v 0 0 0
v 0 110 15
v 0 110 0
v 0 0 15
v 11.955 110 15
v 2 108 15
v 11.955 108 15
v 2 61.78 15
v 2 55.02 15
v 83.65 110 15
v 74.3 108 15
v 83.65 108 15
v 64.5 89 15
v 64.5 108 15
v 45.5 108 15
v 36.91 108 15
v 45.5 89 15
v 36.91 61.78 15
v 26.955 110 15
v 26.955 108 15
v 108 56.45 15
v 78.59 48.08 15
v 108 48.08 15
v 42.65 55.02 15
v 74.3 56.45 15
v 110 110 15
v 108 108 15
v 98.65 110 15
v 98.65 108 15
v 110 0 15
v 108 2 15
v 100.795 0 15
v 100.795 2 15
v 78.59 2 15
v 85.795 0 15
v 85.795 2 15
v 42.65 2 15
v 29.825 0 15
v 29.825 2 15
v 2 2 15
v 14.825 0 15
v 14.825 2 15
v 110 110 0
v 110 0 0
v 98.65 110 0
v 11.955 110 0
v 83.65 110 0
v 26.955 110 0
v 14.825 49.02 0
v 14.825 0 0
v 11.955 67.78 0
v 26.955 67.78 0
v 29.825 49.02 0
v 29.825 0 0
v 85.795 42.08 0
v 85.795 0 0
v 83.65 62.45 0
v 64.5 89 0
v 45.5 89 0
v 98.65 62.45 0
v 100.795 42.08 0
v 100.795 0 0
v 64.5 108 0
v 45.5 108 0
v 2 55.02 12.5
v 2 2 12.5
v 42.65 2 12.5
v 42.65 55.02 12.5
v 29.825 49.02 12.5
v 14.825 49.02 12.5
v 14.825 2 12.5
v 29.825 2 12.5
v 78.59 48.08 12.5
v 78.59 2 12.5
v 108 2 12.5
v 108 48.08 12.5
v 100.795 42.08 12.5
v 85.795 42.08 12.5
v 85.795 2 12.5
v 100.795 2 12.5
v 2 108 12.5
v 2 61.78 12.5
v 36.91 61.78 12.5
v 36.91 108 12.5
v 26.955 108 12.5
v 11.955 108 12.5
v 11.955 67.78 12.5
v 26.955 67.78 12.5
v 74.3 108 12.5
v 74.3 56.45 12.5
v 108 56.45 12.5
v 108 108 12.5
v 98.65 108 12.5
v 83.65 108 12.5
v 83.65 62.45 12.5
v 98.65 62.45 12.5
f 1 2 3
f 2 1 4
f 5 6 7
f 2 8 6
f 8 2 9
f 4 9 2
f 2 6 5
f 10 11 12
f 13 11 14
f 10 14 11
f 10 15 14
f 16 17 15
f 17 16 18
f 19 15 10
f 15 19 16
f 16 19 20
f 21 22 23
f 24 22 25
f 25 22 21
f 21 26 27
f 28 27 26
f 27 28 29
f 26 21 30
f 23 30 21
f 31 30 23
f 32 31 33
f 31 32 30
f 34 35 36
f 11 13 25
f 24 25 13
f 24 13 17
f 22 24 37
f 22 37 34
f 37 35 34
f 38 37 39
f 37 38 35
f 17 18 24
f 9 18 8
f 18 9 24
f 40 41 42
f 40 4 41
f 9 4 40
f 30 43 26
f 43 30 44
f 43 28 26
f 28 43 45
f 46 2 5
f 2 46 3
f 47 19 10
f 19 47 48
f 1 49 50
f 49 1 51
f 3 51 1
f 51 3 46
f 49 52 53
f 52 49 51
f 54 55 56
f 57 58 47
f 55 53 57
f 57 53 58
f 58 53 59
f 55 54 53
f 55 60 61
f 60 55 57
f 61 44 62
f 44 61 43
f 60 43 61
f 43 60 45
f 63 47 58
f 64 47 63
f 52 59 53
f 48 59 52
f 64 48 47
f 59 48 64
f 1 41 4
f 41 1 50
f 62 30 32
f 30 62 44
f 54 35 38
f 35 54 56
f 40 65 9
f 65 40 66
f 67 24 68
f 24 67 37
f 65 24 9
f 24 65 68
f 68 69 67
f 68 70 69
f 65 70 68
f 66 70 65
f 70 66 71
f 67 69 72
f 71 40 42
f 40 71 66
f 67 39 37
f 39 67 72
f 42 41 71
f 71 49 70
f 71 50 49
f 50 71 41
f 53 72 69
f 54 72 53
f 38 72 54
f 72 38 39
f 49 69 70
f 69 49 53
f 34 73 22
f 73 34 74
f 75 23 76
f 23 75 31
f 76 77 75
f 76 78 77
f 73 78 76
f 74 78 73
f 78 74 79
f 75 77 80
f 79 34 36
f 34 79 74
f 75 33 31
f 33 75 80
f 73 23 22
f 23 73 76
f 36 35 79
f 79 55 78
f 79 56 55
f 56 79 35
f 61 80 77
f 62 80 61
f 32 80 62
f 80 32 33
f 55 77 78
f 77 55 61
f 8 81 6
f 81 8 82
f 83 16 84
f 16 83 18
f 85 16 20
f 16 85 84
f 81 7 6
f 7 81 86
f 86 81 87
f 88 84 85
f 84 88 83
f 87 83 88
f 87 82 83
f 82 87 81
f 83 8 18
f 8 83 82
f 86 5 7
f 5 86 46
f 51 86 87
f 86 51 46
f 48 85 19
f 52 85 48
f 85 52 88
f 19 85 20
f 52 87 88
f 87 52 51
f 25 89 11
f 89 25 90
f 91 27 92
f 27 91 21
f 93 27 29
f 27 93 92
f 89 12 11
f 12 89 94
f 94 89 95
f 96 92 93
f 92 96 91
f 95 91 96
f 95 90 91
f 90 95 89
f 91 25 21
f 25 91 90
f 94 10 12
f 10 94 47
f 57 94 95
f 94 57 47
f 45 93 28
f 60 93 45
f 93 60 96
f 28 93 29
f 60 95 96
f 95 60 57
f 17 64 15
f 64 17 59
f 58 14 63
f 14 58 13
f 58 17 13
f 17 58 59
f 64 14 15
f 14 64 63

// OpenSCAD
length = 110;
width = 110;
height = 15;

//Based on magnet size:
magnetBaseInnerDiameter = 19;
magnetHeight = 4.0;

//        winged horror 52.02 x 39.65
//		bandit commander 45.08 x 28.41
//		the betrayer 45.22 x 33.91
//		The colorless 50.55 x 32.70

token1Width = 52.02 + 1;
token1Length = 39.65 + 1;
token1Height = 2 + .5;
token1SquareLipWidthRemainder = token1Length - 15;
token1SquareLipLengthRemainder = 4;

token3Width = 45.08 + 1;
token3Length = 28.41 + 1;
token3Height = 2 + .5;
token3SquareLipWidthRemainder = token3Length - 15;
token3SquareLipLengthRemainder = 4;

token4Width = 45.22 + 1;
token4Length = 33.91 + 1;
token4Height = 2 + .5;
token4SquareLipWidthRemainder = token4Length - 15;
token4SquareLipLengthRemainder = 4;

token6Width = 50.55 + 1;
token6Length = 32.70 + 1;
token6Height = 2 + .5;
token6SquareLipWidthRemainder = token6Length - 15;
token6SquareLipLengthRemainder = 4;

spaceBetweenCircles = 2;
wallThickness = spaceBetweenCircles;



difference(){
    cube([length, width, height]);


//----------------------------------
translate(
        [
            wallThickness,
            wallThickness,
            height - token1Height
        ])
        cube([token1Length,token1Width, token1Height]);
    translate([
        wallThickness + token1SquareLipWidthRemainder/2,
        0,
        0])
        cube([
            token1Length - token1SquareLipWidthRemainder,
            token1Width - token1SquareLipLengthRemainder,
            height]);

            
translate(
        [
            length - (wallThickness + token3Length),
            wallThickness,
            height - token3Height
        ])
        cube([token3Length,token3Width, token3Height]);
    translate([
        length - (wallThickness + token3Length) + token3SquareLipWidthRemainder/2,
        0,
        0])
        cube([
            token3Length - token3SquareLipWidthRemainder,
            token3Width - token3SquareLipLengthRemainder,
            height]);

            
//---------------------------------------------------------------------
    
    translate(
        [
            wallThickness,
            width - (wallThickness + token4Width),
            height - token4Height
        ])
        cube([token4Length,token4Width, token4Height]);
    translate([
        wallThickness + token4SquareLipWidthRemainder/2,
        width - (token4Width - token4SquareLipLengthRemainder),
        0])
        cube([
            token4Length - token4SquareLipWidthRemainder,
            token4Width - token4SquareLipLengthRemainder,
            height]);
            
    

    translate(
        [
            length - (wallThickness + token6Length),
            width - (wallThickness + token6Width),
            height - token6Height
        ])
        cube([token6Length,token6Width, token6Height]);
    translate([
        length - (wallThickness + token6Length) + token6SquareLipWidthRemainder/2,
        width - (token6Width - token6SquareLipLengthRemainder),
        0])
        cube([
            token6Length - token6SquareLipWidthRemainder,
            token6Width - token6SquareLipLengthRemainder,
            height]);       

//----------------------------------------
   
    translate([length/2 - magnetBaseInnerDiameter/2, length - (wallThickness + magnetBaseInnerDiameter), 0])
        cube([magnetBaseInnerDiameter, magnetBaseInnerDiameter, height]);
        

}
